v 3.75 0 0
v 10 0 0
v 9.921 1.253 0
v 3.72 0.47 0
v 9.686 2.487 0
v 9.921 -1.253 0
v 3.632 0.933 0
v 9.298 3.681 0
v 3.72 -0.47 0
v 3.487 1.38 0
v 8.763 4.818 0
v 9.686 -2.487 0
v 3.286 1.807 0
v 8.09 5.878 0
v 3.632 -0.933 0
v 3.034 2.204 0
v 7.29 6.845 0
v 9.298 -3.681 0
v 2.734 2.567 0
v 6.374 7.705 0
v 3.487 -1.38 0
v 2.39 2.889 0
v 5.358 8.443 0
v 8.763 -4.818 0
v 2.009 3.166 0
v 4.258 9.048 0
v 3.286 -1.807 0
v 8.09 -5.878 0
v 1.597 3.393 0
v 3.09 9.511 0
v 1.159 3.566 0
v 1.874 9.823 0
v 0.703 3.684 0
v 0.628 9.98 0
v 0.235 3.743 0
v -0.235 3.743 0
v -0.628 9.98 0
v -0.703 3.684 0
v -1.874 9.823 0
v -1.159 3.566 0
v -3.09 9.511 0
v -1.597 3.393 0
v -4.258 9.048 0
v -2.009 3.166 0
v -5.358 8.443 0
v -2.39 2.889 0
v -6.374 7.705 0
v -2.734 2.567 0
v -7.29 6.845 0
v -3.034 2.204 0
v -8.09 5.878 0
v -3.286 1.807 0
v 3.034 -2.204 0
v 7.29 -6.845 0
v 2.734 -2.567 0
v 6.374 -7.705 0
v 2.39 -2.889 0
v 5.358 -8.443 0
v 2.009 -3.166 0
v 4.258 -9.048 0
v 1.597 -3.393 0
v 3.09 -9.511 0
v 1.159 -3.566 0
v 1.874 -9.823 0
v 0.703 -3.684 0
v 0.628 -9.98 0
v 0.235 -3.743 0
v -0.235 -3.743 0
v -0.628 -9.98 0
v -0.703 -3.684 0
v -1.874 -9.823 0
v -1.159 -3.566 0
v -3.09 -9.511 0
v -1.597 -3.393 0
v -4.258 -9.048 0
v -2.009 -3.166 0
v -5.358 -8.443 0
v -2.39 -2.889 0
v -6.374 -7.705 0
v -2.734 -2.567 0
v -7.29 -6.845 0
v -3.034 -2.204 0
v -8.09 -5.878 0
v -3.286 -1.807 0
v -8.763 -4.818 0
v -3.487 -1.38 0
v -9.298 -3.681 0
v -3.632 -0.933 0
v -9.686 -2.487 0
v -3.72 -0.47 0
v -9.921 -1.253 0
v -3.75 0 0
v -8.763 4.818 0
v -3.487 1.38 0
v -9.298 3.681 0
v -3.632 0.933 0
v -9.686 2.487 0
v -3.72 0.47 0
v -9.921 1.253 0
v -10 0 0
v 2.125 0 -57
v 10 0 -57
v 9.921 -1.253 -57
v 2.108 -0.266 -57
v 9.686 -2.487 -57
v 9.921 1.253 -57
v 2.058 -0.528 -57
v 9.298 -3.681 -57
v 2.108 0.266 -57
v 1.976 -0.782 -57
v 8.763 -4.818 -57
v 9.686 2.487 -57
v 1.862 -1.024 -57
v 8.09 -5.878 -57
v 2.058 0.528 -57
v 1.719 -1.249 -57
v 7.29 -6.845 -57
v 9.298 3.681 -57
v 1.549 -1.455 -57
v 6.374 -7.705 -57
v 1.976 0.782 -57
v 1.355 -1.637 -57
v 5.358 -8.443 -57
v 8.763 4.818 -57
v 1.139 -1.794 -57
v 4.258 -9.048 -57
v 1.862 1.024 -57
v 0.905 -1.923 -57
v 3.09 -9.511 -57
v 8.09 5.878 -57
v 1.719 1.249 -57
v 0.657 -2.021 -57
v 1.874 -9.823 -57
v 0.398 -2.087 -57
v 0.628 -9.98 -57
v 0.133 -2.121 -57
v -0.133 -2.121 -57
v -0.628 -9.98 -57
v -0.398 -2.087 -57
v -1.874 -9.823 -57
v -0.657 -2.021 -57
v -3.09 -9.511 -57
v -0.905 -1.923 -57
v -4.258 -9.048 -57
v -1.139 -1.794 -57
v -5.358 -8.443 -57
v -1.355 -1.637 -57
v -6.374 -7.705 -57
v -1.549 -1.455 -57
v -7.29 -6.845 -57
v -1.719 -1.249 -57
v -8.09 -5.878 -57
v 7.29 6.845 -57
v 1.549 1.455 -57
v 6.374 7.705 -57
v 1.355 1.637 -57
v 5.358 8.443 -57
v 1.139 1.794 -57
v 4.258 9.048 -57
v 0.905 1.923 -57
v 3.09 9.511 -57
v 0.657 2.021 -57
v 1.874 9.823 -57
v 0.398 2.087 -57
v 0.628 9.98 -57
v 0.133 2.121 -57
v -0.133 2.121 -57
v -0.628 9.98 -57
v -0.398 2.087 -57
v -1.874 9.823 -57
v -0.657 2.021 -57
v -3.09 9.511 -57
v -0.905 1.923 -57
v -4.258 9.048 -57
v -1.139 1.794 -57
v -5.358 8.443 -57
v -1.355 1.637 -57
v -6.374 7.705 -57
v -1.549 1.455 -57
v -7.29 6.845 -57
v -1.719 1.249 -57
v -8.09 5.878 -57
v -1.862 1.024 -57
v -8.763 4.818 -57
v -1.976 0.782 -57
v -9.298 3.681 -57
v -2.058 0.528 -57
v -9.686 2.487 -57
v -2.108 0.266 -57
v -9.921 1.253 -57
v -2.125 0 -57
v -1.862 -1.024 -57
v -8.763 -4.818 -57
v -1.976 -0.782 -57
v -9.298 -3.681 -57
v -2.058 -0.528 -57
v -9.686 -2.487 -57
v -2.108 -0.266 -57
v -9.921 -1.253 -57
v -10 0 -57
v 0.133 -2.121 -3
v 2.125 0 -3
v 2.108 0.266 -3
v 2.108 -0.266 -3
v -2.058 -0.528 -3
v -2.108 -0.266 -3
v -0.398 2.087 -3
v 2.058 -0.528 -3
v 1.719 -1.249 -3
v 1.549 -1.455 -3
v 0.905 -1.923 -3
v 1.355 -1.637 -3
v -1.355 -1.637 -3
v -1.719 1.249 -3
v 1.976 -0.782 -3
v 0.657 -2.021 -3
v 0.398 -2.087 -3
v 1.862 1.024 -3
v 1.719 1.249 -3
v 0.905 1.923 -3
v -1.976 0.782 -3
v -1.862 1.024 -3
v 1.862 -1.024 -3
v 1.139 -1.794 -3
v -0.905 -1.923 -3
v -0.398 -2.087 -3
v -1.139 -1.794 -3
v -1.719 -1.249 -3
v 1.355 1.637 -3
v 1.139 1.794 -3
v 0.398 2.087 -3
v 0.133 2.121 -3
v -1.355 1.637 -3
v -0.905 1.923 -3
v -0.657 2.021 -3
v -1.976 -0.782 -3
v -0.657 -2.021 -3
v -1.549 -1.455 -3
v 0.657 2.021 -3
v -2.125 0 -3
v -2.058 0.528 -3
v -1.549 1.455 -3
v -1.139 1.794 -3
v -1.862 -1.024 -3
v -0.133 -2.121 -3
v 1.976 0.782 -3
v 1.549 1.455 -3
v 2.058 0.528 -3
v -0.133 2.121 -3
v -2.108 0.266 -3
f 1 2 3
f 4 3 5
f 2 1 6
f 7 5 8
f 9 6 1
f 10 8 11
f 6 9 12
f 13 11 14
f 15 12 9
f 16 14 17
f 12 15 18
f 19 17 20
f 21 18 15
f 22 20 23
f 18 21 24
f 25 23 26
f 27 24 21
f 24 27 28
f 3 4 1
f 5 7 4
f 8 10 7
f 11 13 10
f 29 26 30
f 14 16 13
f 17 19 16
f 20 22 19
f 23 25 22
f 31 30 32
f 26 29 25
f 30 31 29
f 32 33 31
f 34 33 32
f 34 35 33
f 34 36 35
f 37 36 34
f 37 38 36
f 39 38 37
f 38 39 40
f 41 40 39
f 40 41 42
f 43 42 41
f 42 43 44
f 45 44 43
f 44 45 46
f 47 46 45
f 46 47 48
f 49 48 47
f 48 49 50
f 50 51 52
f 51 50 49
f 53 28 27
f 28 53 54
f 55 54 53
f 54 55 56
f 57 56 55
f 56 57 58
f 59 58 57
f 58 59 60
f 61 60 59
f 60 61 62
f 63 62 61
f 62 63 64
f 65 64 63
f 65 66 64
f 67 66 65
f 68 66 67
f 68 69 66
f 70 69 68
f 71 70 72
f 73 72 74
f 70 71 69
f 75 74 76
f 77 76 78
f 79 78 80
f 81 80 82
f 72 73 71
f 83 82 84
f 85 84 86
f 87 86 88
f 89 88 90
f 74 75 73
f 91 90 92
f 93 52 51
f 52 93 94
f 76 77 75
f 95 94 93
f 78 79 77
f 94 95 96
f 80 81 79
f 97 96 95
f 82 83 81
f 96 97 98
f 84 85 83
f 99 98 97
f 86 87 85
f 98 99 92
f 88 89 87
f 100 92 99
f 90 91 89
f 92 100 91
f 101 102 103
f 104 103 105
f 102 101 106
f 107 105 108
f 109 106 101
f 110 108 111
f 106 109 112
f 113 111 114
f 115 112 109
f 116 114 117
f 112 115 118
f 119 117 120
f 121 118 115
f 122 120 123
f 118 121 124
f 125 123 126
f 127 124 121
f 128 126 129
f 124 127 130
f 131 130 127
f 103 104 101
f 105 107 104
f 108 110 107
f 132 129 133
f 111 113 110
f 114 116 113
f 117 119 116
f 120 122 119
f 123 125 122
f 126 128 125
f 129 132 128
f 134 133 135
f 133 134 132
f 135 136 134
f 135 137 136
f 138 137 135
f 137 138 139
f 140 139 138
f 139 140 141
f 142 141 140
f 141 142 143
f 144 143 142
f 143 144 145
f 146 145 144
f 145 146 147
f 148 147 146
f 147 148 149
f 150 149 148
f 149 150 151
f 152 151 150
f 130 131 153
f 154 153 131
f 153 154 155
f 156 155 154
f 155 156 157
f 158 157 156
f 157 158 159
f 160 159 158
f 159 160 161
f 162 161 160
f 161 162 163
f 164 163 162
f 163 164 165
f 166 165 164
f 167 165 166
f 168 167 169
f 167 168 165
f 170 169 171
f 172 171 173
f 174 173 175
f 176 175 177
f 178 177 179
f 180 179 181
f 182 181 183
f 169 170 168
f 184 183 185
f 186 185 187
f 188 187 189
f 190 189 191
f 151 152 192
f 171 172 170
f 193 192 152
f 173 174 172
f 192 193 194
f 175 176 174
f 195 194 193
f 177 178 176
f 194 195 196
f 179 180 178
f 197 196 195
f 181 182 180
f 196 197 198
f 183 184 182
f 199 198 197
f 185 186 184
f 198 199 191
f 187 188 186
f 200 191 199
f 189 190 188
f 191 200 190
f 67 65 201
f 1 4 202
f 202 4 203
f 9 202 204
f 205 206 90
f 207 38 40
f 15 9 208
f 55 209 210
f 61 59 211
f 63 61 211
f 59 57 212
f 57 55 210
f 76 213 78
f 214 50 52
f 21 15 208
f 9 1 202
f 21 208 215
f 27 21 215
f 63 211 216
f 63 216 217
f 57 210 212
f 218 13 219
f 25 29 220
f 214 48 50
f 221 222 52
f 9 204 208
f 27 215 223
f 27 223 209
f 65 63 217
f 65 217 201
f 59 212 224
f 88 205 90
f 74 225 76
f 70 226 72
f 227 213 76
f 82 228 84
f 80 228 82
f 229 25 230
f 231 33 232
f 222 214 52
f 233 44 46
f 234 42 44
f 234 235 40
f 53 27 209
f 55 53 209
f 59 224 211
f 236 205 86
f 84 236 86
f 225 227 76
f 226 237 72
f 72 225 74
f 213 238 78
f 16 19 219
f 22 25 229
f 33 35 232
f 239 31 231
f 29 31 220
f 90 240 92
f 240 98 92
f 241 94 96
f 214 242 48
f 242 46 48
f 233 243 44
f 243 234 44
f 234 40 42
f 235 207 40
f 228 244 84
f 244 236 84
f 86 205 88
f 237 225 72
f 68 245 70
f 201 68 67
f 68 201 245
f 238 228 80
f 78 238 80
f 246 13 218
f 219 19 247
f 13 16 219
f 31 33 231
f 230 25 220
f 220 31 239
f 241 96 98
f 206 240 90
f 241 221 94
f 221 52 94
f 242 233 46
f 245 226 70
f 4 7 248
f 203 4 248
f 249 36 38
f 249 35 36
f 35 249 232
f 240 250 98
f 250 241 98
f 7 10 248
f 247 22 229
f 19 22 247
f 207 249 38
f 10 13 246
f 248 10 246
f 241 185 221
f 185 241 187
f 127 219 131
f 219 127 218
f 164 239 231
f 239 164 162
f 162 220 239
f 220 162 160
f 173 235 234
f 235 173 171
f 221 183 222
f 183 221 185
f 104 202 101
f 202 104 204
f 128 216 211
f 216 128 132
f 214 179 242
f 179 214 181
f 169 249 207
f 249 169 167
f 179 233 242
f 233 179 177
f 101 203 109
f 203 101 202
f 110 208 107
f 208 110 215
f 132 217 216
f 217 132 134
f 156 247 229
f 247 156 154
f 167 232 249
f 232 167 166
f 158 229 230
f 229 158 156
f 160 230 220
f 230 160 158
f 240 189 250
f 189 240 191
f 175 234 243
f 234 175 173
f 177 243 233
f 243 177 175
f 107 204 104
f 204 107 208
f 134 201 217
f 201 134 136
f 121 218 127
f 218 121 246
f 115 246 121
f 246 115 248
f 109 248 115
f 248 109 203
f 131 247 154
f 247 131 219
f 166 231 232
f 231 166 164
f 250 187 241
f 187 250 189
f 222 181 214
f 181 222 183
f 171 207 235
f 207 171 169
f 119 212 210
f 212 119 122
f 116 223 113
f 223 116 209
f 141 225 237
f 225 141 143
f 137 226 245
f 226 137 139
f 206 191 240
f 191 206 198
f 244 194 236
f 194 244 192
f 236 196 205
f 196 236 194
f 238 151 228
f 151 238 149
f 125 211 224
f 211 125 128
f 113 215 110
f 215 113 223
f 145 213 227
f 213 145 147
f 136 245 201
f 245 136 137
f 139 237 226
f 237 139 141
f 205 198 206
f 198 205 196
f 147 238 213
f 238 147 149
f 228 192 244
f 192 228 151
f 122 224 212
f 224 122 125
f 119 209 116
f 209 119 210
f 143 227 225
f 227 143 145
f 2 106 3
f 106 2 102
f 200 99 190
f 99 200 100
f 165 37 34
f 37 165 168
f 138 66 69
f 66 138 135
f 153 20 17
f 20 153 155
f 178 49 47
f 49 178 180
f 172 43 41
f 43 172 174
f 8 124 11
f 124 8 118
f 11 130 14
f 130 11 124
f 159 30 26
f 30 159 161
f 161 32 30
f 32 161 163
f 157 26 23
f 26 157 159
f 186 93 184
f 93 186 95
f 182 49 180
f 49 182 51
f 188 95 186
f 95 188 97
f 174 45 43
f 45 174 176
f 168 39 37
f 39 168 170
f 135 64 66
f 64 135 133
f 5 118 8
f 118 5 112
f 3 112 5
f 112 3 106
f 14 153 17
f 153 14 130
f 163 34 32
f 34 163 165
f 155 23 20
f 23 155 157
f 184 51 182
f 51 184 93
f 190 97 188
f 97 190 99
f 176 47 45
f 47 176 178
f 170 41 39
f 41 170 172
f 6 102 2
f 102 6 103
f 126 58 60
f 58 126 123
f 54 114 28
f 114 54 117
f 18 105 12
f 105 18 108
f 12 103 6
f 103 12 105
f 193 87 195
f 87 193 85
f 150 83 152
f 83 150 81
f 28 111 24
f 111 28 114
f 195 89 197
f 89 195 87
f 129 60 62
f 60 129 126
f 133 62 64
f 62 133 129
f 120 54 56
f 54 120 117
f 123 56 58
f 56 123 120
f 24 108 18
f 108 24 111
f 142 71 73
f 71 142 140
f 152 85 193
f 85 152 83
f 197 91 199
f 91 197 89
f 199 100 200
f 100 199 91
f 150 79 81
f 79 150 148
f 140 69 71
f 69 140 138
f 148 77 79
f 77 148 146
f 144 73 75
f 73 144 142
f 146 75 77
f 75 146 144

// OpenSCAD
$fn = 50;


difference() {
	union() {
		translate(v = [0, 0, -57.0000000000]) {
			cylinder(h = 57, r = 10.0000000000);
		}
		cylinder(h = 0, r = 19.0000000000);
	}
	union() {
		translate(v = [0, 0, 0]) {
			rotate(a = [0, 0, 0]) {
				difference() {
					union() {
						#translate(v = [0, 0, -57.0000000000]) {
							cylinder(h = 57, r = 2.0000000000);
						}
						#translate(v = [0, 0, -3]) {
							cylinder(h = 3, r1 = 2.1250000000, r2 = 3.7500000000);
						}
						#translate(v = [0, 0, -57.0000000000]) {
							cylinder(h = 57, r = 2.1250000000);
						}
						#translate(v = [0, 0, -57.0000000000]) {
							cylinder(h = 57, r = 2.0000000000);
						}
					}
					union();
				}
			}
		}
	}
}
